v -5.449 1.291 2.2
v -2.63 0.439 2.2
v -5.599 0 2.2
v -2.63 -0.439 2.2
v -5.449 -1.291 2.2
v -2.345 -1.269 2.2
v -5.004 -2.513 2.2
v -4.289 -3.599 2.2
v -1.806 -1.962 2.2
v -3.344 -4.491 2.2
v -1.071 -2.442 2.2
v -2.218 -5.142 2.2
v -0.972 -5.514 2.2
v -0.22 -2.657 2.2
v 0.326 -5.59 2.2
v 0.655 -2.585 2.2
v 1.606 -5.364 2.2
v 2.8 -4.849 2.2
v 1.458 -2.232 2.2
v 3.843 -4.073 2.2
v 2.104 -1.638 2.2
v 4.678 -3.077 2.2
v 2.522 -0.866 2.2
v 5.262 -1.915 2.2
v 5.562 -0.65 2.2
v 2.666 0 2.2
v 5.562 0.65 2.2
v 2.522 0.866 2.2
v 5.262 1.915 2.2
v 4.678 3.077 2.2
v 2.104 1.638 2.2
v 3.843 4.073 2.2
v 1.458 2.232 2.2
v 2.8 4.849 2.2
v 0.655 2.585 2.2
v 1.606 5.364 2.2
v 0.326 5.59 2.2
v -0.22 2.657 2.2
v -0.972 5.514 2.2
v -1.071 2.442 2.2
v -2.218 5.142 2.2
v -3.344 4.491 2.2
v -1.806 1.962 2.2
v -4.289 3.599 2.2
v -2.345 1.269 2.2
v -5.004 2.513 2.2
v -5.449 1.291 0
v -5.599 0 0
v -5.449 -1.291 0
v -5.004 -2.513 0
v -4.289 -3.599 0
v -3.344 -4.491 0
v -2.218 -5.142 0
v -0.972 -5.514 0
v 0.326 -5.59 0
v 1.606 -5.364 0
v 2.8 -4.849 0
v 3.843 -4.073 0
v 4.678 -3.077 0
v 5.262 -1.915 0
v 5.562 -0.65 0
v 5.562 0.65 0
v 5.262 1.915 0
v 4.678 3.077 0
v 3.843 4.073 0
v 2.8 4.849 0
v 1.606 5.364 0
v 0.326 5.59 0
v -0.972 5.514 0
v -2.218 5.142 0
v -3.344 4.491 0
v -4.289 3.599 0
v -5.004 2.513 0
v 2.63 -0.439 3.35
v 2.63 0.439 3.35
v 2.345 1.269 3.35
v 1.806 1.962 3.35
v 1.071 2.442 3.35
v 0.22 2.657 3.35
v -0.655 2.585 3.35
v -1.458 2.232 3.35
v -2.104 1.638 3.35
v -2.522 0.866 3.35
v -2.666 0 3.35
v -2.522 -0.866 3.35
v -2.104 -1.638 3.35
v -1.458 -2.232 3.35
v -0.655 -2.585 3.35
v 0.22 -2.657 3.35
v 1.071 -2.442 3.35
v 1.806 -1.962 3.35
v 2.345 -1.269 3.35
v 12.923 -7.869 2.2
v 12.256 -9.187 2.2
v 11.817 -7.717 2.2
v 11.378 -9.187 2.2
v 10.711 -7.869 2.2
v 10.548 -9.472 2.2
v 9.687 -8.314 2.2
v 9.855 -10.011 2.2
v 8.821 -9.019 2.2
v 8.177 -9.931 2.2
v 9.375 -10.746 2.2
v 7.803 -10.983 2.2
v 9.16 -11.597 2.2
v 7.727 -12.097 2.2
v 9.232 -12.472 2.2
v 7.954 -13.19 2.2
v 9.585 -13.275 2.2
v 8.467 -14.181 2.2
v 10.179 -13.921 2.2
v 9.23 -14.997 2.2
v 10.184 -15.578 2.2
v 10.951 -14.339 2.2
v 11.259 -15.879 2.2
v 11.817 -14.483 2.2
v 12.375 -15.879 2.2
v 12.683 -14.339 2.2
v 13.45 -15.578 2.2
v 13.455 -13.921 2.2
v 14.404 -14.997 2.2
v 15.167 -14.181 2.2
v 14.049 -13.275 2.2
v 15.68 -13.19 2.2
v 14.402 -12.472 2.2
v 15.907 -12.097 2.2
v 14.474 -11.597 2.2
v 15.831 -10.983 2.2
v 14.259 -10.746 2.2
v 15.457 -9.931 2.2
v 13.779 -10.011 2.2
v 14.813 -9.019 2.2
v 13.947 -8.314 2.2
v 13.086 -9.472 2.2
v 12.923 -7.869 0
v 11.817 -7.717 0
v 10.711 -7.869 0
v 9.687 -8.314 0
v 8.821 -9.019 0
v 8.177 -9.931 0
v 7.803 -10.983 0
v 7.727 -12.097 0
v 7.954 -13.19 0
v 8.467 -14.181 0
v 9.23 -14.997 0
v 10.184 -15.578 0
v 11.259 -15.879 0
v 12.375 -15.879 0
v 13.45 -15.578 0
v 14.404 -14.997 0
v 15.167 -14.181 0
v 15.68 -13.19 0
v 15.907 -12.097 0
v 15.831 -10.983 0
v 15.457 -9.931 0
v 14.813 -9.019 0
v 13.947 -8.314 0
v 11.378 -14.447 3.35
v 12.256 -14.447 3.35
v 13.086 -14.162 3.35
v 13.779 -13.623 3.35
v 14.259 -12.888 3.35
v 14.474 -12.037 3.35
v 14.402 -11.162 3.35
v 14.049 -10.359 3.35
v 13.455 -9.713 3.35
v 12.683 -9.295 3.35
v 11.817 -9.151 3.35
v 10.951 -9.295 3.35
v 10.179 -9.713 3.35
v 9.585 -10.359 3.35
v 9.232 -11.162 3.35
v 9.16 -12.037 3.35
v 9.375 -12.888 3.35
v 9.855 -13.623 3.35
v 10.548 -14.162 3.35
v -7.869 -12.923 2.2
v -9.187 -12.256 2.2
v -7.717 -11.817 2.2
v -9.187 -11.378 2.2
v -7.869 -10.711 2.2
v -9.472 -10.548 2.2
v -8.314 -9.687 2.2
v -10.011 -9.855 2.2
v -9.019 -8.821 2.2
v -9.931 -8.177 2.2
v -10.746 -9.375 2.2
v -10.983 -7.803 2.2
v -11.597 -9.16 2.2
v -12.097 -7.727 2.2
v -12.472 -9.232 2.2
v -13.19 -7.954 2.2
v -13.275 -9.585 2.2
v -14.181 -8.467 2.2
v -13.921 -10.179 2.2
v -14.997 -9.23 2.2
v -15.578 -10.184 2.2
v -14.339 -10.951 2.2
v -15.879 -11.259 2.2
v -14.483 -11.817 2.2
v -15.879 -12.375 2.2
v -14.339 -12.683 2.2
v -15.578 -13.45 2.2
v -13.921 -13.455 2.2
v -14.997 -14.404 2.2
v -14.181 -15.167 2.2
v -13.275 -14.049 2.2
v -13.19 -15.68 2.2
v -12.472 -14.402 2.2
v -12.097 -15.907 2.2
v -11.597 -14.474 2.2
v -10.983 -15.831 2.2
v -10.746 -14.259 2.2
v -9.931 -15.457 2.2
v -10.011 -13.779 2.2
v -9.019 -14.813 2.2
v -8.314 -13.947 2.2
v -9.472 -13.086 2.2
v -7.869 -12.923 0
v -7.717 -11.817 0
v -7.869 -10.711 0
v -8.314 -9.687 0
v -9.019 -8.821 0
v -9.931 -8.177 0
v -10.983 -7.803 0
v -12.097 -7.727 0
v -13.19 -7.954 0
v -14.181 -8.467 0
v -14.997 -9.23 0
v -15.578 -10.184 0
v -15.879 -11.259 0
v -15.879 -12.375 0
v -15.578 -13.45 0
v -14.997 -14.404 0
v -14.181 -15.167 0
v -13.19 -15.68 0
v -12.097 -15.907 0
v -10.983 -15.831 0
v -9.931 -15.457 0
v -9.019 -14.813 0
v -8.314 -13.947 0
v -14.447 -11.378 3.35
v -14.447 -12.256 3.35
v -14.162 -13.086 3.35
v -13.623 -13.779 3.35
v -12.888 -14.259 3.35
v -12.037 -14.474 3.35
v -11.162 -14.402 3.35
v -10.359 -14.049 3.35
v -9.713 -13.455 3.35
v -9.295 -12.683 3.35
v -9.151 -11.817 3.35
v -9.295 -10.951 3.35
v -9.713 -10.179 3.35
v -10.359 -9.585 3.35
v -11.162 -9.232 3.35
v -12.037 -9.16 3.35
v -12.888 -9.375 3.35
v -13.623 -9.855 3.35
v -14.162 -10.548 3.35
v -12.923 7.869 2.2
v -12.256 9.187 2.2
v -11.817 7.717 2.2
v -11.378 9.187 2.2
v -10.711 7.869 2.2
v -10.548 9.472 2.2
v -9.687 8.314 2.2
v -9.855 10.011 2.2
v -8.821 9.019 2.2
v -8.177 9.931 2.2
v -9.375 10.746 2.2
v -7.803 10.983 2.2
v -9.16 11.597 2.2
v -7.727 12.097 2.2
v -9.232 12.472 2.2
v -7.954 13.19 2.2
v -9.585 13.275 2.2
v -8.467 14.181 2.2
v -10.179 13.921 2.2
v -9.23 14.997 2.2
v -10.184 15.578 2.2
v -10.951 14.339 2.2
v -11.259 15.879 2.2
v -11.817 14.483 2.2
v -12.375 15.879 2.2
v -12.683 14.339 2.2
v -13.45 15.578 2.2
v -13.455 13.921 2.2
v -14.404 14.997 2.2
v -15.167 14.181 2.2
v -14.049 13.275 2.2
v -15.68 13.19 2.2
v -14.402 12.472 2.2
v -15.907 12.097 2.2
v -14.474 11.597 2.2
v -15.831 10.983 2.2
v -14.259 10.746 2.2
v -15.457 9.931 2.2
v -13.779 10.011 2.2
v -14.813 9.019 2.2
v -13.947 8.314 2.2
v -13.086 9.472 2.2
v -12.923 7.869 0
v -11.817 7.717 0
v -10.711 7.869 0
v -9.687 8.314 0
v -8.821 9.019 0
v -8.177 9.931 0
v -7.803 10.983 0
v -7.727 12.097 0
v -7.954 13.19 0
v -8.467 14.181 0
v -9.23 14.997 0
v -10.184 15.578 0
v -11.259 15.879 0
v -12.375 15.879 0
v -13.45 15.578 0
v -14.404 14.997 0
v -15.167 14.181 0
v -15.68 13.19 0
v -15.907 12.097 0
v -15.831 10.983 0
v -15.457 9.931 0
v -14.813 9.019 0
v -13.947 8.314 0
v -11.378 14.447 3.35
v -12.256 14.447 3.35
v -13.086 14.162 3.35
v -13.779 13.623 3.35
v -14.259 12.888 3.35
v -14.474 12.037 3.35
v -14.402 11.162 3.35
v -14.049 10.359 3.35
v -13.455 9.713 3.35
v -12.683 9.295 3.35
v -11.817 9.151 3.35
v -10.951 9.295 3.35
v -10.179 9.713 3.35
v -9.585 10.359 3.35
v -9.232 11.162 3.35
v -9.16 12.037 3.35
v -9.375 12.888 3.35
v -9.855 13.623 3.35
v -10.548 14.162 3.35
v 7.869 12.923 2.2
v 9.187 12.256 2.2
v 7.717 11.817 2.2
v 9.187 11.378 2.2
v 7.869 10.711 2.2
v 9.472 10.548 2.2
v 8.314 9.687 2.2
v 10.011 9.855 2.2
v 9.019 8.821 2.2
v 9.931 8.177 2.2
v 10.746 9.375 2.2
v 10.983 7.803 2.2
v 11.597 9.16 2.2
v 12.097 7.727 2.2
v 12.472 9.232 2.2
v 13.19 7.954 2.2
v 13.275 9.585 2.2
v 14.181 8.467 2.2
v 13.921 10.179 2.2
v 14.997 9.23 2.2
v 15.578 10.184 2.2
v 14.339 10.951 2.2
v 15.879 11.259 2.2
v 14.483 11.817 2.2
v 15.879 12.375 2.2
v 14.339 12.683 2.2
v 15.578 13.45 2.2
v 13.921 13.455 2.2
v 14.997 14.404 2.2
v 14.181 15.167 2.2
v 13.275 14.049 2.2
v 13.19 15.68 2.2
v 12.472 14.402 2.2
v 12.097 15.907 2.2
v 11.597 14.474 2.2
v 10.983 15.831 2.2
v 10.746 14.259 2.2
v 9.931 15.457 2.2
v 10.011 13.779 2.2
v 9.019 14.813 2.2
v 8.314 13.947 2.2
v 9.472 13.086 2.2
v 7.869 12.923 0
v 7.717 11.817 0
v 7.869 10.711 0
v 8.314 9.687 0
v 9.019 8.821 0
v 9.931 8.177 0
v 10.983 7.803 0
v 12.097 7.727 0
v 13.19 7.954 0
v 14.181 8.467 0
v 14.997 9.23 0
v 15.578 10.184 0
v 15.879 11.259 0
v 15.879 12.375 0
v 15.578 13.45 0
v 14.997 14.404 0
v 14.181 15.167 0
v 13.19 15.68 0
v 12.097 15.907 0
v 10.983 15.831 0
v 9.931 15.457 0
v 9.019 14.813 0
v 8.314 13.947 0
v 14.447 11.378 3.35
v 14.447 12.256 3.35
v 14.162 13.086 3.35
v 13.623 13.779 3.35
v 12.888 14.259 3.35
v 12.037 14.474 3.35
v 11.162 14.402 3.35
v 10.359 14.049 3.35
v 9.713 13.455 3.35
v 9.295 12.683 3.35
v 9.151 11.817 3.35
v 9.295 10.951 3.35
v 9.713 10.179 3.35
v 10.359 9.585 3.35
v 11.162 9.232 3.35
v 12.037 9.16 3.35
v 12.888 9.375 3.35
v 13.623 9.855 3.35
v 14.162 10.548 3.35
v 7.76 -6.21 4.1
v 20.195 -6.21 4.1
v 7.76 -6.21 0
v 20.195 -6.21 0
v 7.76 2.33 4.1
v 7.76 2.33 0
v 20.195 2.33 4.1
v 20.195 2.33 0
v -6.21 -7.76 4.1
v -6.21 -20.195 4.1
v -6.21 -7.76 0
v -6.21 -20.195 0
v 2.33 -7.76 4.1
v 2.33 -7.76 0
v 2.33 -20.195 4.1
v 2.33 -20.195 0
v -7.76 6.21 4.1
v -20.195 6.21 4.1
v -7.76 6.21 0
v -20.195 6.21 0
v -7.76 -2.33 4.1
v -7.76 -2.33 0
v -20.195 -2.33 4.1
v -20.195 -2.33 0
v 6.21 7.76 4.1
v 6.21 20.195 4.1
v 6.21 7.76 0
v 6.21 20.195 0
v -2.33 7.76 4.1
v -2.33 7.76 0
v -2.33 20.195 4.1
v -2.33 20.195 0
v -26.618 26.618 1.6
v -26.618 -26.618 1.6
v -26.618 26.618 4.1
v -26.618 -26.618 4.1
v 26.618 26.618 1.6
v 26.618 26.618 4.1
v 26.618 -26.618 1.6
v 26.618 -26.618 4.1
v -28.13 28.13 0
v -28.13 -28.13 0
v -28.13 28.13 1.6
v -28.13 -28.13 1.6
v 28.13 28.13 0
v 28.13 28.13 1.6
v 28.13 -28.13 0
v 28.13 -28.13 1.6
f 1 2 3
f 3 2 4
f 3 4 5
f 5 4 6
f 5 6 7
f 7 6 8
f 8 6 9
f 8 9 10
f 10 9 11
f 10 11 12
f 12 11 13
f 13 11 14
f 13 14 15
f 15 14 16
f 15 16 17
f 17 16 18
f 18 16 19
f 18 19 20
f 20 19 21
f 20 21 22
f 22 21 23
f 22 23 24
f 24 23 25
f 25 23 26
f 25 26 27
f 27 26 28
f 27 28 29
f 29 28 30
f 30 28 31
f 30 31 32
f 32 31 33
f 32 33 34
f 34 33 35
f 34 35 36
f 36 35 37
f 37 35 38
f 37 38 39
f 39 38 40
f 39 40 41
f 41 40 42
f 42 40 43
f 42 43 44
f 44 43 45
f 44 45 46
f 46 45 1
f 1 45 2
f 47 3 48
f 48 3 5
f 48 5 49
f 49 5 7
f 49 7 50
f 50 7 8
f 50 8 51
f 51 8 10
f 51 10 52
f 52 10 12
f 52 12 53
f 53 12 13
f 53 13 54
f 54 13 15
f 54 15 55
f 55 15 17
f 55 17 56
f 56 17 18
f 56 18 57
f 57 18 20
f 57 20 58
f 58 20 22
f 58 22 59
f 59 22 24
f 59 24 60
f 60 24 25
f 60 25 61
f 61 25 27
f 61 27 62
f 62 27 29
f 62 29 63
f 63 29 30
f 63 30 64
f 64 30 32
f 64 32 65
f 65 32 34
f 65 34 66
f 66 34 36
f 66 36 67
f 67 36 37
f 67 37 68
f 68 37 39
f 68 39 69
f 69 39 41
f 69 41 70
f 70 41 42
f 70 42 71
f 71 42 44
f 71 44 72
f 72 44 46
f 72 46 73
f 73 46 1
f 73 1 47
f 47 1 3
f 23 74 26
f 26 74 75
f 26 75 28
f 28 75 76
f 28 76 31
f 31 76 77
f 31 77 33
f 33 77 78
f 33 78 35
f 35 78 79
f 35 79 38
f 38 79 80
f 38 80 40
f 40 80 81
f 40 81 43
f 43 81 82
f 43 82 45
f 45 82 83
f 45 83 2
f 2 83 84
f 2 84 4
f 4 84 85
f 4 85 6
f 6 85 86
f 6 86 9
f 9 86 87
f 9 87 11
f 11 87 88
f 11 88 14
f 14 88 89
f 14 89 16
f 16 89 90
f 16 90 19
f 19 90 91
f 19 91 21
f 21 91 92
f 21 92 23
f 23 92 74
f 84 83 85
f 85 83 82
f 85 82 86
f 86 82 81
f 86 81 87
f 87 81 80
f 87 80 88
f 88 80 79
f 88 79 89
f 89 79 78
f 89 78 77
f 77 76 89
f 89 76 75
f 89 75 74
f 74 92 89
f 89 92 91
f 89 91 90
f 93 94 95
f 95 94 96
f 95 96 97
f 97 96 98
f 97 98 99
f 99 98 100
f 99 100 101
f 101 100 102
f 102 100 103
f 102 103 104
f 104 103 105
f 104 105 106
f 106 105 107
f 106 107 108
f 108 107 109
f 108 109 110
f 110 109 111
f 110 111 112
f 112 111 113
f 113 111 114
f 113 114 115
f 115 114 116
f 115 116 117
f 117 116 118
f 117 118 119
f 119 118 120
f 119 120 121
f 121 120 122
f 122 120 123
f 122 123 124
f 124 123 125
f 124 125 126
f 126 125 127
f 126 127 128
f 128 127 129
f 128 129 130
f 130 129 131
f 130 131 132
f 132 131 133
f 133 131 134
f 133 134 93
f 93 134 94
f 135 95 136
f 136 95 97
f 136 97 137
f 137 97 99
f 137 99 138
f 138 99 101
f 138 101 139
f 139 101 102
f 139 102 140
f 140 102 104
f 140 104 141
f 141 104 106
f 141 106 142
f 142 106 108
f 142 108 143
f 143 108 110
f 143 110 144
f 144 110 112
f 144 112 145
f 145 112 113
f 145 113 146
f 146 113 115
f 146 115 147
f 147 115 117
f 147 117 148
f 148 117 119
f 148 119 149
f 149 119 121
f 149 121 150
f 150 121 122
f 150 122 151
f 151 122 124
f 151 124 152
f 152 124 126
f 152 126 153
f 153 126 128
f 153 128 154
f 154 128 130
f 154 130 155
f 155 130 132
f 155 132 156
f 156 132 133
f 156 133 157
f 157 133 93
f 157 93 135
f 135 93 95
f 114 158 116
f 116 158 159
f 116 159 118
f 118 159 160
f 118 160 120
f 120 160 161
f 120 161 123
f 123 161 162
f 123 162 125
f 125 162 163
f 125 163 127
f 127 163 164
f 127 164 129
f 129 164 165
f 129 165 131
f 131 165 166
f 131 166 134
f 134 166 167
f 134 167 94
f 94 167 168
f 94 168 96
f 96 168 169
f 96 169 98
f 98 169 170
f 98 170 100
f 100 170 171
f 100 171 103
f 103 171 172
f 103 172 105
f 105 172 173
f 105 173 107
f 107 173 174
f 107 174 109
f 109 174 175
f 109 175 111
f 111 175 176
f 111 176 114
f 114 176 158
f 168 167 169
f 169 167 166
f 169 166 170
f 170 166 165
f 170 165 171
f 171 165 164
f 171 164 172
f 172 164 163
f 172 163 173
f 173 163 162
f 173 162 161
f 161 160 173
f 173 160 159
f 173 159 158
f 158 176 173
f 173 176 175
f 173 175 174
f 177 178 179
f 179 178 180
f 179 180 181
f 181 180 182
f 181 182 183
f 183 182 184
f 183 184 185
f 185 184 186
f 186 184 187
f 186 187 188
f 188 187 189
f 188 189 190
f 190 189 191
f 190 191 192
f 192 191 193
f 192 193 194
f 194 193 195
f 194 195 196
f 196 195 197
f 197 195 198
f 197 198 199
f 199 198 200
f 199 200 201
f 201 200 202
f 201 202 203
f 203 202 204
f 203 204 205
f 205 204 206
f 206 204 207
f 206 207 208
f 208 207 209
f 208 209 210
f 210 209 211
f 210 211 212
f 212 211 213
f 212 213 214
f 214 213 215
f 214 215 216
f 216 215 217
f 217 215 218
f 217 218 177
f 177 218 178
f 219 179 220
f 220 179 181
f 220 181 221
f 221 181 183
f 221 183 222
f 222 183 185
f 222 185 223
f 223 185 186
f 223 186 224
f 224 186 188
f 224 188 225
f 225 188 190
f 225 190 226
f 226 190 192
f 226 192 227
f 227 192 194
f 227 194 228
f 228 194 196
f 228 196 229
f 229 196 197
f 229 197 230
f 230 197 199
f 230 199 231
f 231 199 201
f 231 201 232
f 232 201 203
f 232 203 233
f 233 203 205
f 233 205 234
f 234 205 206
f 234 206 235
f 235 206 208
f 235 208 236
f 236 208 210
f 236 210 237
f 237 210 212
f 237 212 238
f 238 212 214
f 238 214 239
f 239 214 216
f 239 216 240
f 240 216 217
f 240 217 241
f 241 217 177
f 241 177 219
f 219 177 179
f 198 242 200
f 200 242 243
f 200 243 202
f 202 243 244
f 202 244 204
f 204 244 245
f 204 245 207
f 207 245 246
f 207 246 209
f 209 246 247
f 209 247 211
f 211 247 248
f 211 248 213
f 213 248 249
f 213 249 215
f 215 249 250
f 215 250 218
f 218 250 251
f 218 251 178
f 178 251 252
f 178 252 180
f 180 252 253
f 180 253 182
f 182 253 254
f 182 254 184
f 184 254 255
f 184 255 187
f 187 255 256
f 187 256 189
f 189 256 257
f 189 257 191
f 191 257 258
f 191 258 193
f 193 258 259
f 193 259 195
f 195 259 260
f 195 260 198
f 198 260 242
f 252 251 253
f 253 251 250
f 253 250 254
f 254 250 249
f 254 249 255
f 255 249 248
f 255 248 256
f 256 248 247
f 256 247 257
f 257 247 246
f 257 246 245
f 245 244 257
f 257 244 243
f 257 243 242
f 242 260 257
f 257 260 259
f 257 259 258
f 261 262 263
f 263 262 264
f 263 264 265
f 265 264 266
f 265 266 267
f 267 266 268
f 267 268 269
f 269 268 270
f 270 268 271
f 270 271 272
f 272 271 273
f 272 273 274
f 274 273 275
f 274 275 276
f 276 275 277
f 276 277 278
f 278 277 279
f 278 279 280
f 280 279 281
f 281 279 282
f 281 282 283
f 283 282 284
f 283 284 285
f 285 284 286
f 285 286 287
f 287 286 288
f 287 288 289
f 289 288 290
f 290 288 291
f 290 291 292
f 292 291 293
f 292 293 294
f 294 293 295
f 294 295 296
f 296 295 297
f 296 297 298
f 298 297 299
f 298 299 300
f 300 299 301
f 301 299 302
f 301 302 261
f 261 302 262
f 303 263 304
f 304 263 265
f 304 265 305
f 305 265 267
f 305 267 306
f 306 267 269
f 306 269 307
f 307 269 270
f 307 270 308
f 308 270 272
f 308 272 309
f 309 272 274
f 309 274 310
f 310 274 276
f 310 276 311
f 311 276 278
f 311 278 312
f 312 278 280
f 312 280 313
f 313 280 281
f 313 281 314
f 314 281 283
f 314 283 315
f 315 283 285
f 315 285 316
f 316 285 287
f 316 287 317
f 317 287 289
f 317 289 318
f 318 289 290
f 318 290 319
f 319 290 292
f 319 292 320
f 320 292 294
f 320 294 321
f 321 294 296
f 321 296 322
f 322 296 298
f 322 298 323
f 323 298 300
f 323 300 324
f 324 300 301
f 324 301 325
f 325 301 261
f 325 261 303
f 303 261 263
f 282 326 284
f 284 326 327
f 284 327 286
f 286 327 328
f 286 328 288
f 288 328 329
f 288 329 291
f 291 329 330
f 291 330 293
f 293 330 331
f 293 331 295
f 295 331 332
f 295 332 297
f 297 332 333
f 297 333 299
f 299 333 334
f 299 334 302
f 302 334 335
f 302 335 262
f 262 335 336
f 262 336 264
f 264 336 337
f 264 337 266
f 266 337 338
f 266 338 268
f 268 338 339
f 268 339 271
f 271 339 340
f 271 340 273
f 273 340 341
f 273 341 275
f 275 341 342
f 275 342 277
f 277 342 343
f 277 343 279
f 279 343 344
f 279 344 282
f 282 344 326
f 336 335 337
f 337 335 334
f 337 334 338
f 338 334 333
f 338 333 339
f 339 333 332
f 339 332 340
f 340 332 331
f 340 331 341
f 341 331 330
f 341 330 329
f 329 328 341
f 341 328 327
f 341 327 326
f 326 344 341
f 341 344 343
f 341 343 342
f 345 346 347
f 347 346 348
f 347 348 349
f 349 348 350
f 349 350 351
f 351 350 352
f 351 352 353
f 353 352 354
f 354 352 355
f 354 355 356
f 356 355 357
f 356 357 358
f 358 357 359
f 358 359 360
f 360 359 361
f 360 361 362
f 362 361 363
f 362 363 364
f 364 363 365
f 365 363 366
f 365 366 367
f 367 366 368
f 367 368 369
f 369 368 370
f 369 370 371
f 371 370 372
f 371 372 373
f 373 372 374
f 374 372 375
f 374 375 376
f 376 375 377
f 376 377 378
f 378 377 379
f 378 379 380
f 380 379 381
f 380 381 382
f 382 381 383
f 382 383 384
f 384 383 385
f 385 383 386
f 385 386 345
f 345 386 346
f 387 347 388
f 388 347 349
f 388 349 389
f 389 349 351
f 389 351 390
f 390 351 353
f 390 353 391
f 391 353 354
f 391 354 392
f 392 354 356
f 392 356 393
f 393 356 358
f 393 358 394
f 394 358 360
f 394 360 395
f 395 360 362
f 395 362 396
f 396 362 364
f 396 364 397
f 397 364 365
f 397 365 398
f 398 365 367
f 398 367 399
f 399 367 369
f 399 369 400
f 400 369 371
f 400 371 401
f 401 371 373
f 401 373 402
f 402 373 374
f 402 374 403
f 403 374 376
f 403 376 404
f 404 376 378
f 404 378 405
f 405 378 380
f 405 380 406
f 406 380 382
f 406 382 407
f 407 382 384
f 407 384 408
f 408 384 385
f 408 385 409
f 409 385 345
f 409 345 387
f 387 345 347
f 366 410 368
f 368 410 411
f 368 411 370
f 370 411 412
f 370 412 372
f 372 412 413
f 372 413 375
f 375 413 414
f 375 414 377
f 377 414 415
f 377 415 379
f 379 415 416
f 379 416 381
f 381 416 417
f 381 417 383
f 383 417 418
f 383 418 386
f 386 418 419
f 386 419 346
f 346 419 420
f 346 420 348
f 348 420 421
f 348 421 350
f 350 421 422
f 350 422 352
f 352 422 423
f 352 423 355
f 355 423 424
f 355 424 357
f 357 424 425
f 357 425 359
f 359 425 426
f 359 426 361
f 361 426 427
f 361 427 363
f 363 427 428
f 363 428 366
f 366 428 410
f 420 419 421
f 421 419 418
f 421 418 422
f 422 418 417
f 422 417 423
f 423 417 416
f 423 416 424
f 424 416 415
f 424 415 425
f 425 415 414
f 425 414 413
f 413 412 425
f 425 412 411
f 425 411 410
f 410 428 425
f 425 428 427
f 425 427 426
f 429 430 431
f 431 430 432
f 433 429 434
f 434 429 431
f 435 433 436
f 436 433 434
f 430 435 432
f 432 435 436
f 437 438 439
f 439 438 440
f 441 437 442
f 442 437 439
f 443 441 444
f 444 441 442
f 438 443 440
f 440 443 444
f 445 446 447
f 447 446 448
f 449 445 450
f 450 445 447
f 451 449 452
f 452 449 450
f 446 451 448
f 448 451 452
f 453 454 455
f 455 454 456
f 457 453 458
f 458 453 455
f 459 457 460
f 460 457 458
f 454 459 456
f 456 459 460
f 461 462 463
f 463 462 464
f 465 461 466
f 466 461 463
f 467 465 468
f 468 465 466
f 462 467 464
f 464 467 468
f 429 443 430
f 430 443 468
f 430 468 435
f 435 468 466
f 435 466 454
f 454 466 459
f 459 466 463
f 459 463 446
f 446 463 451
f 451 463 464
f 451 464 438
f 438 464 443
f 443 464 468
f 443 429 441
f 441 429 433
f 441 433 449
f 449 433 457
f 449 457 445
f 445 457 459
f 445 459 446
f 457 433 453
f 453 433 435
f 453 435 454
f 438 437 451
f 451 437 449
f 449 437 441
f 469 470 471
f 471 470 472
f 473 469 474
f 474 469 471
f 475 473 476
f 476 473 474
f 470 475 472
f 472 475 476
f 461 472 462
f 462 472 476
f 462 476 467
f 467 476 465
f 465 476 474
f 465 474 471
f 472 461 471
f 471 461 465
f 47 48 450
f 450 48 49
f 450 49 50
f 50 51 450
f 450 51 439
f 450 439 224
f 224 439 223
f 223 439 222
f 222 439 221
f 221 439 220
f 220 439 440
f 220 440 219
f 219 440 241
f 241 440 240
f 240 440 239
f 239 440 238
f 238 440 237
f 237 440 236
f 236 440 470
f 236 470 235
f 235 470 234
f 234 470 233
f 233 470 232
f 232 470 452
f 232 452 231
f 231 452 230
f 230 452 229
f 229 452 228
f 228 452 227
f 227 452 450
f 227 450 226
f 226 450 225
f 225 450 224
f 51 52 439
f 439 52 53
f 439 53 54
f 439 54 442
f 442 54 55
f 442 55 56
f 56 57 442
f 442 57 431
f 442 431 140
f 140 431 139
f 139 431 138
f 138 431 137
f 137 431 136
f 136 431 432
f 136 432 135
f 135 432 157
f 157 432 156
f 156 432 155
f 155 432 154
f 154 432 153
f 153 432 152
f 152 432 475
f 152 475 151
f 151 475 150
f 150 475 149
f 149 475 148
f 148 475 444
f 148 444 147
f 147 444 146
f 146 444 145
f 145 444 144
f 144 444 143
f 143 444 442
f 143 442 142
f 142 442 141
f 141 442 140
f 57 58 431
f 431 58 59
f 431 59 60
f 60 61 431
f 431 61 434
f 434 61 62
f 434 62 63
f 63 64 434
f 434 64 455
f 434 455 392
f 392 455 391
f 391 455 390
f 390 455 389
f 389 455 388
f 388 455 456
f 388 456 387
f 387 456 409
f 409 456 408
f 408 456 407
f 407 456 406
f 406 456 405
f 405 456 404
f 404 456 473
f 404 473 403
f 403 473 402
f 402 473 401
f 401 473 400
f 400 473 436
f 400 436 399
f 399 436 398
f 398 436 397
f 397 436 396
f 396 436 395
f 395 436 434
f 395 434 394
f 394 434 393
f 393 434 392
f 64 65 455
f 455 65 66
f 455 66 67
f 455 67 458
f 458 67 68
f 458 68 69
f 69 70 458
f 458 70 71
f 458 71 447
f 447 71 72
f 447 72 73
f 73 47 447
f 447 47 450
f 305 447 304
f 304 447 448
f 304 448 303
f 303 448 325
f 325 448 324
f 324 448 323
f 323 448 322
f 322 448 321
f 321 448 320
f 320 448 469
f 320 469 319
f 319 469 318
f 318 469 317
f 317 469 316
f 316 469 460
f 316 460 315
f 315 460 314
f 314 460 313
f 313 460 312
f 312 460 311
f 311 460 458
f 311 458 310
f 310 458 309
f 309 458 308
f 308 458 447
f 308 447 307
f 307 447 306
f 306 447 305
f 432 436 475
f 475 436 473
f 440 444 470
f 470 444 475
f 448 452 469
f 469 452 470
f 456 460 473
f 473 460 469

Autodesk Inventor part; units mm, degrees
ref_plane "YZ Plane" through (0, 0, 0) normal (1, 0, 0) x (0, 1, 0)
ref_plane "XZ Plane" through (0, 0, 0) normal (0, 1, 0) x (-1, 0, 0)
ref_plane "XY Plane" through (0, 0, 0) normal (0, 0, 1) x (1, 0, 0)
sketch "Skizze1" plane through (0, 0, 0) normal (0, 0, 1) x (1, 0, 0)
  line L0 (-28.13, 28.13) -> (28.13, 28.13)
  line L1 (28.13, 28.13) -> (28.13, -28.13)
  line L2 (28.13, -28.13) -> (-28.13, -28.13)
  line L3 (-28.13, -28.13) -> (-28.13, 28.13)
  line L4 (-39.382, 0) -> (39.382, 0) construction
  line L5 (0, -39.382) -> (0, 39.382) construction
  point P0 (0, 0)
  dimension "d0" = 56.26
extrude "Extrusion1" add sketch "Skizze1" along normal blind 1.6
sketch "Skizze2" plane through (0, 0, 1.6) normal (0, 0, 1) x (1, 0, 0)
  line L0 (0, -39.382) -> (0, 39.382) construction
  line L1 (-39.382, 0) -> (39.382, 0) construction
  line L2 (-26.6175, 26.6175) -> (26.6175, 26.6175)
  line L3 (26.6175, 26.6175) -> (26.6175, -26.6175)
  line L4 (26.6175, -26.6175) -> (-26.6175, -26.6175)
  line L5 (-26.6175, -26.6175) -> (-26.6175, 26.6175)
  line L6 (28.13, 28.13) -> (-28.13, 28.13) projected
  point P0 (0, 0)
  dimension "d3" = 53.235
extrude "Extrusion2" add sketch "Skizze2" along normal blind 2.5
sketch "Skizze3" plane through (0, 0, 0) normal (0, 0, -1) x (-1, 0, 0)
  line L0 (28.13, -28.13) -> (-28.13, -28.13) projected
  line L1 (28.13, 28.13) -> (28.13, -28.13) projected
  line L2 (-28.13, 28.13) -> (28.13, 28.13) projected
  line L3 (-28.13, -28.13) -> (-28.13, 28.13) projected
  line L4 (-6.21, 20.195) -> (2.33, 20.195)
  line L5 (2.33, 20.195) -> (2.33, 7.76)
  line L6 (2.33, 7.76) -> (-6.21, 7.76)
  line L7 (-6.21, 7.76) -> (-6.21, 20.195)
  point P0 (0, 0)
  point P1 (0, 0)
  dimension "d6" = 21.92
  dimension "d7" = 8.54
  dimension "d8" = 12.435
  dimension "d9" = 35.89
extrude "Extrusion3" cut sketch "Skizze3" against normal up to surface (4.1 mm away) contours L4 L5 L6 L7
pattern_circular "Runde Anordnung1" count 4 over 360 about axis through (0, 0, -10) along (0, 0, 1) of "Extrusion3"
sketch "Skizze4" plane through (0, 0, 0) normal (0, 0, -1) x (-1, 0, 0)
  line L0 (-28.13, -28.13) -> (-28.13, 28.13) projected
  line L1 (-28.13, 28.13) -> (28.13, 28.13) projected
  point P0 (0, 0)
  point P1 (-11.817, 11.817)
  dimension "d15" = 16.313
  dimension "d16" = 16.313
hole "Bohrung1" at (11.817, 11.817, 0) direction (0, 0, 1) diameter 5.333 depth 3.35 counterbore diameter 8.2 counterbore depth 2.2
pattern_circular "Runde Anordnung2" count 4 over 360 about axis through (0, 0, -10) along (0, 0, 1) of "Bohrung1"
sketch "Skizze5" plane through (0, 0, 0) normal (0, 0, -1) x (-1, 0, 0)
  point P0 (0, 0)
  point P1 (0, 0)
hole "Bohrung2" at (0, 0, 0) direction (0, 0, 1) diameter 5.333 depth 3.35 counterbore diameter 11.199 counterbore depth 2.2
properties part number "PCB_cover_platte_0,1_reduziert"
